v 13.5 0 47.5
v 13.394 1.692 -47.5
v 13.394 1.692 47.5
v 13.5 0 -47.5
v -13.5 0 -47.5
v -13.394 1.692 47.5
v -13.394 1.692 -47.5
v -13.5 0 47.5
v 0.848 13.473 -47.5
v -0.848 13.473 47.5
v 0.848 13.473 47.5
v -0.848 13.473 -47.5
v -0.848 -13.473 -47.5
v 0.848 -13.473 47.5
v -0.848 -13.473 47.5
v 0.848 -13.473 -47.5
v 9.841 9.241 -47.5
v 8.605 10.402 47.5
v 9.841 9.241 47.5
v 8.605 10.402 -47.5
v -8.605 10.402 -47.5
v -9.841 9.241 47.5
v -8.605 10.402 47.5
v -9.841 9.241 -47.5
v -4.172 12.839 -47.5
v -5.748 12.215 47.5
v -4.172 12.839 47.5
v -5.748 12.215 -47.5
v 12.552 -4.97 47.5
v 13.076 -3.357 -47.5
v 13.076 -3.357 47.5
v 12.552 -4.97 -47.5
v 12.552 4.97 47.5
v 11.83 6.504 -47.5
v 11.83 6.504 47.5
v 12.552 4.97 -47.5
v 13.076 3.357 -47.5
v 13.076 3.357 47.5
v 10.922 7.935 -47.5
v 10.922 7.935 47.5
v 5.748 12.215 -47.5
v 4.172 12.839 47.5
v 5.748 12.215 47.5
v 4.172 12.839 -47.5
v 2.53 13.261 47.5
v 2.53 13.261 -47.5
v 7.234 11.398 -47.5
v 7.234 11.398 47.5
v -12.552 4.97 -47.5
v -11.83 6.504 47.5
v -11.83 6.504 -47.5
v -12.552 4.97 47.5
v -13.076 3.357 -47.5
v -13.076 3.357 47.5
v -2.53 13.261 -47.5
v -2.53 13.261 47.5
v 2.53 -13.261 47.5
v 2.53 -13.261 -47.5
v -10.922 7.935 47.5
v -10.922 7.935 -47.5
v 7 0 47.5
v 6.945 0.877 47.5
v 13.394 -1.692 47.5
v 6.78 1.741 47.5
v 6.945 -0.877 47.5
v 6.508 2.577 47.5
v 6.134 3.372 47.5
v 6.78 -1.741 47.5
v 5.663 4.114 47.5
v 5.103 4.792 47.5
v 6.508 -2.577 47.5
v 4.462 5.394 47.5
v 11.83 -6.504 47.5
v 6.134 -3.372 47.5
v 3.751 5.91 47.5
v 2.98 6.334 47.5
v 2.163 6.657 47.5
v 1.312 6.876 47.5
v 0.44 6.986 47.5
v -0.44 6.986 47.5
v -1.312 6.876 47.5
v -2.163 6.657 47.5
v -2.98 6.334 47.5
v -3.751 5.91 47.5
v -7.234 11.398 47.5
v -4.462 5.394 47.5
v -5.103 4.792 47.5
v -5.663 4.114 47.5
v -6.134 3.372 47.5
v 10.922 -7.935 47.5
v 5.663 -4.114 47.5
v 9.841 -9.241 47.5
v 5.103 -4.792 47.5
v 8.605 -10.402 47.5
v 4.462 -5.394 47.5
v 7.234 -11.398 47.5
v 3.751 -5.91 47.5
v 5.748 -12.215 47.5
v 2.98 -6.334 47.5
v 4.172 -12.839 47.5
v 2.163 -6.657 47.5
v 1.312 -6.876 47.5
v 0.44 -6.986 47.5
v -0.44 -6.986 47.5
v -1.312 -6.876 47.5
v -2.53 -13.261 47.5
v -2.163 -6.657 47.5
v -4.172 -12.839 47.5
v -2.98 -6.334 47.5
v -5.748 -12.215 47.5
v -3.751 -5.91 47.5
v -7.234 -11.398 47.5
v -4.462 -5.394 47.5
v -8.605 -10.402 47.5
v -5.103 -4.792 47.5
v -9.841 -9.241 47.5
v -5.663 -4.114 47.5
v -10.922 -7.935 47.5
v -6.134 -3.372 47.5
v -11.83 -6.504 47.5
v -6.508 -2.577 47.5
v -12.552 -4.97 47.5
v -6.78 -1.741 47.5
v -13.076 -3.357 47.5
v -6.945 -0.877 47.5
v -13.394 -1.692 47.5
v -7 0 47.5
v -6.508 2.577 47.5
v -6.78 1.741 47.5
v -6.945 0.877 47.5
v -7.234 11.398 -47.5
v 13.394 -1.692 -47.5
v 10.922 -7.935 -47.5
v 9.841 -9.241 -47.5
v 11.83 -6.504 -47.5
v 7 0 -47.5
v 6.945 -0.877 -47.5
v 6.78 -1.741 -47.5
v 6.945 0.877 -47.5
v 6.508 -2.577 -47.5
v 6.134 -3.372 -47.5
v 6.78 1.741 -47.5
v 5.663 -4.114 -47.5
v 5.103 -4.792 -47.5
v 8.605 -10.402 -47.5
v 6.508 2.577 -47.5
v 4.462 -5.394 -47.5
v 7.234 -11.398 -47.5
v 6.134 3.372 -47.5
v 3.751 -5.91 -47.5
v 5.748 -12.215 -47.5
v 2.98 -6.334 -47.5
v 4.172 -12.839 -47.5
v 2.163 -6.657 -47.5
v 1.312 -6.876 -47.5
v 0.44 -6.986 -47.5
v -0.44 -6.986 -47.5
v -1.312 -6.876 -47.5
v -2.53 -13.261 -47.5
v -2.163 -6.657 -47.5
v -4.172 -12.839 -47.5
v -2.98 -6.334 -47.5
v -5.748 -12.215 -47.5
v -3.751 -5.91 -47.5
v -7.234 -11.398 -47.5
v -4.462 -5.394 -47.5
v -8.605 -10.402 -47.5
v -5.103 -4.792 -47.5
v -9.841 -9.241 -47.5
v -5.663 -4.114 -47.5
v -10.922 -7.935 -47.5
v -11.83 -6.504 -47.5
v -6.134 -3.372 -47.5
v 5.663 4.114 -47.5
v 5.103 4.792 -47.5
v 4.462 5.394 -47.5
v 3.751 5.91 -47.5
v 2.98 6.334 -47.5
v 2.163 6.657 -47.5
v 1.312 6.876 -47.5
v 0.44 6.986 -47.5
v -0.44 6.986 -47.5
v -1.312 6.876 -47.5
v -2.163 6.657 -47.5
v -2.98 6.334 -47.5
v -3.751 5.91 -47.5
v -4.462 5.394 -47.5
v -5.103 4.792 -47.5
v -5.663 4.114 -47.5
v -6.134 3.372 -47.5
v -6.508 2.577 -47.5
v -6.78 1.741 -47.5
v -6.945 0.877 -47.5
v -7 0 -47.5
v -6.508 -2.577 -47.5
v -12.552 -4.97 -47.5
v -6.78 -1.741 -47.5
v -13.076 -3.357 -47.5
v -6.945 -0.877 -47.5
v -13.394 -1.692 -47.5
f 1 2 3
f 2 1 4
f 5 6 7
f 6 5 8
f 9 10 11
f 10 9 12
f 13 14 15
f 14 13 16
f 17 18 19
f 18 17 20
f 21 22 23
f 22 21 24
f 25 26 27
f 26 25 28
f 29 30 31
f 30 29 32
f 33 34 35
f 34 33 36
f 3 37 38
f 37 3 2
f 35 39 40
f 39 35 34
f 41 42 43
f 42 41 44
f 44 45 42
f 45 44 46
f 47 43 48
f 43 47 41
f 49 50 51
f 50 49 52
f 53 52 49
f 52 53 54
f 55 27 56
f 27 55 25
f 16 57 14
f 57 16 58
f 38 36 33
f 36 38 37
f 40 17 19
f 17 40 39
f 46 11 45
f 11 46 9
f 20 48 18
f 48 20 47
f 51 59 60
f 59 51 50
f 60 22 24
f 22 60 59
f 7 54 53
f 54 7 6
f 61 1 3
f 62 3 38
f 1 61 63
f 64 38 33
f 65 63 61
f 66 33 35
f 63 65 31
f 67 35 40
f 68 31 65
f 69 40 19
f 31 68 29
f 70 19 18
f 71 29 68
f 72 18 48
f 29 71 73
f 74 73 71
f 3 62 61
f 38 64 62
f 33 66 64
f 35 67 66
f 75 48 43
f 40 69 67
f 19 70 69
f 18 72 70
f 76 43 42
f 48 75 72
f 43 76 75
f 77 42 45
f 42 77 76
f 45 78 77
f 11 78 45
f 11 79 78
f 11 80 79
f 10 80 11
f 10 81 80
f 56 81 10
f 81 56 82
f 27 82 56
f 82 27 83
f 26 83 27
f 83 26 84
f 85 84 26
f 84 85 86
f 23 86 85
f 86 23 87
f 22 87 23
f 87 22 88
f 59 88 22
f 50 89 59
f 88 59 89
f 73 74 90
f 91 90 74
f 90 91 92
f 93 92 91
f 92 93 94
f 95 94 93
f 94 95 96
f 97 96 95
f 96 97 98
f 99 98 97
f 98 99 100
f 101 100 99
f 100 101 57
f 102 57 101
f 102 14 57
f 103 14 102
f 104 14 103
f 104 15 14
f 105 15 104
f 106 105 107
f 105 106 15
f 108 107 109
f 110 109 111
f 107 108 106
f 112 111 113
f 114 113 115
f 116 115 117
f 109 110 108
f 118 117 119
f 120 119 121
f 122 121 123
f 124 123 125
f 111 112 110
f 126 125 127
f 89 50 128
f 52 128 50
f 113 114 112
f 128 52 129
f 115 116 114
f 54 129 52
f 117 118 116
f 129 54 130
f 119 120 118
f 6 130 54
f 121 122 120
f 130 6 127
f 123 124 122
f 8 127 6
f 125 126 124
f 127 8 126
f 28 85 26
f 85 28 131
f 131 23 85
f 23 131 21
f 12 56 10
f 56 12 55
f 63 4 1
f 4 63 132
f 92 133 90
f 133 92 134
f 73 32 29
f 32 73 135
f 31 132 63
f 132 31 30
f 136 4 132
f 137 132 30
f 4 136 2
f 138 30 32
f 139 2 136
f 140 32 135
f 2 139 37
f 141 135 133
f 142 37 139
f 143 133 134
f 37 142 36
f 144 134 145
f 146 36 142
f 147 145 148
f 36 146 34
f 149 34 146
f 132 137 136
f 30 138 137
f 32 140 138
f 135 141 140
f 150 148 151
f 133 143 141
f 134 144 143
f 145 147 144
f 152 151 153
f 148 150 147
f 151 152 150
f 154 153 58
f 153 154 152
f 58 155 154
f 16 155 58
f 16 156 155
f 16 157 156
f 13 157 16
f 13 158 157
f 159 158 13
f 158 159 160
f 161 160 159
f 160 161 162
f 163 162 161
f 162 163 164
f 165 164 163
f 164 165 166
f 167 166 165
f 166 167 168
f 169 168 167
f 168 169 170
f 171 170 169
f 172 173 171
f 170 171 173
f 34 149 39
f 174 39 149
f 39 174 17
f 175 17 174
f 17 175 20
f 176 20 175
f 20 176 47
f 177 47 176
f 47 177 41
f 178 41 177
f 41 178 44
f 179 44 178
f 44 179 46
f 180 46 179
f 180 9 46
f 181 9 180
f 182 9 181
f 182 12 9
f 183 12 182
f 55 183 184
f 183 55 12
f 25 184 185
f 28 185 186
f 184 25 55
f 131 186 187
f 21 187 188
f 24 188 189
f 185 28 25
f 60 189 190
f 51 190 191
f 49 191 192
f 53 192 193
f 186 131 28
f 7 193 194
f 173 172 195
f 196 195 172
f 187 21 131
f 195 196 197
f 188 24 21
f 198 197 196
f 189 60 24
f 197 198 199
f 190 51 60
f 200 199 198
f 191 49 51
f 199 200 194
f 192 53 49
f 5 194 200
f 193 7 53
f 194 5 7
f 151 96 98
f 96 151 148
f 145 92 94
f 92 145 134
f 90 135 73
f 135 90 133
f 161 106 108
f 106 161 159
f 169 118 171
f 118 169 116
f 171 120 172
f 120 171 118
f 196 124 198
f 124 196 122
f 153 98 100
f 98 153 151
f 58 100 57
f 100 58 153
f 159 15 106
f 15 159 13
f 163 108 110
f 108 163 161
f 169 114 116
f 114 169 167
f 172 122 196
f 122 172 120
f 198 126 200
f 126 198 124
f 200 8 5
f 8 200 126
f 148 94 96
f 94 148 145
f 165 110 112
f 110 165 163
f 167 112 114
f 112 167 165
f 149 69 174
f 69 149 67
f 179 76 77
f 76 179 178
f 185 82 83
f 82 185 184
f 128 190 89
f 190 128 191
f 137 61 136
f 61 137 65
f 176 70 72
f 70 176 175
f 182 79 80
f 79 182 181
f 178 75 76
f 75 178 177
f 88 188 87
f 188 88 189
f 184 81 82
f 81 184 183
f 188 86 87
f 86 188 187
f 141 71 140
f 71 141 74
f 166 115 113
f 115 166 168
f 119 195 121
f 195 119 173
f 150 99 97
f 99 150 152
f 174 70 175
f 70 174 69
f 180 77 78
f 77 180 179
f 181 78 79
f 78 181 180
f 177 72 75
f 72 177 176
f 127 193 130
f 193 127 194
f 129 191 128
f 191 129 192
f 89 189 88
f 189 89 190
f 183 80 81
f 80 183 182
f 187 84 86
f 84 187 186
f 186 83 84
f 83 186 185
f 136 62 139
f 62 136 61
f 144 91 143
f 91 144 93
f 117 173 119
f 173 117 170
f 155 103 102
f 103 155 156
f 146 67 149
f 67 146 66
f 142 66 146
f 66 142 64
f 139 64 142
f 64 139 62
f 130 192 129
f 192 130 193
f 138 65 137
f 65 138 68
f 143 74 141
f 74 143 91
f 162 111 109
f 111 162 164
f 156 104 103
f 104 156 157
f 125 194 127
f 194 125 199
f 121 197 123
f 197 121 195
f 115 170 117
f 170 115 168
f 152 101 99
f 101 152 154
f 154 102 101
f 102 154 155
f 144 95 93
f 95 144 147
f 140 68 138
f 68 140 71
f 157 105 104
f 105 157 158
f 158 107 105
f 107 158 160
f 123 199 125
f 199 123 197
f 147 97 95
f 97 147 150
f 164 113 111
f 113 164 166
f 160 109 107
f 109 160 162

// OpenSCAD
$fn = 50;


difference() {
	union() {
		translate(v = [0, 0, -47.5000000000]) {
			cylinder(h = 95, r = 13.5000000000);
		}
	}
	union() {
		translate(v = [0, 0, -100.0000000000]) {
			cylinder(h = 200, r = 7);
		}
	}
}
